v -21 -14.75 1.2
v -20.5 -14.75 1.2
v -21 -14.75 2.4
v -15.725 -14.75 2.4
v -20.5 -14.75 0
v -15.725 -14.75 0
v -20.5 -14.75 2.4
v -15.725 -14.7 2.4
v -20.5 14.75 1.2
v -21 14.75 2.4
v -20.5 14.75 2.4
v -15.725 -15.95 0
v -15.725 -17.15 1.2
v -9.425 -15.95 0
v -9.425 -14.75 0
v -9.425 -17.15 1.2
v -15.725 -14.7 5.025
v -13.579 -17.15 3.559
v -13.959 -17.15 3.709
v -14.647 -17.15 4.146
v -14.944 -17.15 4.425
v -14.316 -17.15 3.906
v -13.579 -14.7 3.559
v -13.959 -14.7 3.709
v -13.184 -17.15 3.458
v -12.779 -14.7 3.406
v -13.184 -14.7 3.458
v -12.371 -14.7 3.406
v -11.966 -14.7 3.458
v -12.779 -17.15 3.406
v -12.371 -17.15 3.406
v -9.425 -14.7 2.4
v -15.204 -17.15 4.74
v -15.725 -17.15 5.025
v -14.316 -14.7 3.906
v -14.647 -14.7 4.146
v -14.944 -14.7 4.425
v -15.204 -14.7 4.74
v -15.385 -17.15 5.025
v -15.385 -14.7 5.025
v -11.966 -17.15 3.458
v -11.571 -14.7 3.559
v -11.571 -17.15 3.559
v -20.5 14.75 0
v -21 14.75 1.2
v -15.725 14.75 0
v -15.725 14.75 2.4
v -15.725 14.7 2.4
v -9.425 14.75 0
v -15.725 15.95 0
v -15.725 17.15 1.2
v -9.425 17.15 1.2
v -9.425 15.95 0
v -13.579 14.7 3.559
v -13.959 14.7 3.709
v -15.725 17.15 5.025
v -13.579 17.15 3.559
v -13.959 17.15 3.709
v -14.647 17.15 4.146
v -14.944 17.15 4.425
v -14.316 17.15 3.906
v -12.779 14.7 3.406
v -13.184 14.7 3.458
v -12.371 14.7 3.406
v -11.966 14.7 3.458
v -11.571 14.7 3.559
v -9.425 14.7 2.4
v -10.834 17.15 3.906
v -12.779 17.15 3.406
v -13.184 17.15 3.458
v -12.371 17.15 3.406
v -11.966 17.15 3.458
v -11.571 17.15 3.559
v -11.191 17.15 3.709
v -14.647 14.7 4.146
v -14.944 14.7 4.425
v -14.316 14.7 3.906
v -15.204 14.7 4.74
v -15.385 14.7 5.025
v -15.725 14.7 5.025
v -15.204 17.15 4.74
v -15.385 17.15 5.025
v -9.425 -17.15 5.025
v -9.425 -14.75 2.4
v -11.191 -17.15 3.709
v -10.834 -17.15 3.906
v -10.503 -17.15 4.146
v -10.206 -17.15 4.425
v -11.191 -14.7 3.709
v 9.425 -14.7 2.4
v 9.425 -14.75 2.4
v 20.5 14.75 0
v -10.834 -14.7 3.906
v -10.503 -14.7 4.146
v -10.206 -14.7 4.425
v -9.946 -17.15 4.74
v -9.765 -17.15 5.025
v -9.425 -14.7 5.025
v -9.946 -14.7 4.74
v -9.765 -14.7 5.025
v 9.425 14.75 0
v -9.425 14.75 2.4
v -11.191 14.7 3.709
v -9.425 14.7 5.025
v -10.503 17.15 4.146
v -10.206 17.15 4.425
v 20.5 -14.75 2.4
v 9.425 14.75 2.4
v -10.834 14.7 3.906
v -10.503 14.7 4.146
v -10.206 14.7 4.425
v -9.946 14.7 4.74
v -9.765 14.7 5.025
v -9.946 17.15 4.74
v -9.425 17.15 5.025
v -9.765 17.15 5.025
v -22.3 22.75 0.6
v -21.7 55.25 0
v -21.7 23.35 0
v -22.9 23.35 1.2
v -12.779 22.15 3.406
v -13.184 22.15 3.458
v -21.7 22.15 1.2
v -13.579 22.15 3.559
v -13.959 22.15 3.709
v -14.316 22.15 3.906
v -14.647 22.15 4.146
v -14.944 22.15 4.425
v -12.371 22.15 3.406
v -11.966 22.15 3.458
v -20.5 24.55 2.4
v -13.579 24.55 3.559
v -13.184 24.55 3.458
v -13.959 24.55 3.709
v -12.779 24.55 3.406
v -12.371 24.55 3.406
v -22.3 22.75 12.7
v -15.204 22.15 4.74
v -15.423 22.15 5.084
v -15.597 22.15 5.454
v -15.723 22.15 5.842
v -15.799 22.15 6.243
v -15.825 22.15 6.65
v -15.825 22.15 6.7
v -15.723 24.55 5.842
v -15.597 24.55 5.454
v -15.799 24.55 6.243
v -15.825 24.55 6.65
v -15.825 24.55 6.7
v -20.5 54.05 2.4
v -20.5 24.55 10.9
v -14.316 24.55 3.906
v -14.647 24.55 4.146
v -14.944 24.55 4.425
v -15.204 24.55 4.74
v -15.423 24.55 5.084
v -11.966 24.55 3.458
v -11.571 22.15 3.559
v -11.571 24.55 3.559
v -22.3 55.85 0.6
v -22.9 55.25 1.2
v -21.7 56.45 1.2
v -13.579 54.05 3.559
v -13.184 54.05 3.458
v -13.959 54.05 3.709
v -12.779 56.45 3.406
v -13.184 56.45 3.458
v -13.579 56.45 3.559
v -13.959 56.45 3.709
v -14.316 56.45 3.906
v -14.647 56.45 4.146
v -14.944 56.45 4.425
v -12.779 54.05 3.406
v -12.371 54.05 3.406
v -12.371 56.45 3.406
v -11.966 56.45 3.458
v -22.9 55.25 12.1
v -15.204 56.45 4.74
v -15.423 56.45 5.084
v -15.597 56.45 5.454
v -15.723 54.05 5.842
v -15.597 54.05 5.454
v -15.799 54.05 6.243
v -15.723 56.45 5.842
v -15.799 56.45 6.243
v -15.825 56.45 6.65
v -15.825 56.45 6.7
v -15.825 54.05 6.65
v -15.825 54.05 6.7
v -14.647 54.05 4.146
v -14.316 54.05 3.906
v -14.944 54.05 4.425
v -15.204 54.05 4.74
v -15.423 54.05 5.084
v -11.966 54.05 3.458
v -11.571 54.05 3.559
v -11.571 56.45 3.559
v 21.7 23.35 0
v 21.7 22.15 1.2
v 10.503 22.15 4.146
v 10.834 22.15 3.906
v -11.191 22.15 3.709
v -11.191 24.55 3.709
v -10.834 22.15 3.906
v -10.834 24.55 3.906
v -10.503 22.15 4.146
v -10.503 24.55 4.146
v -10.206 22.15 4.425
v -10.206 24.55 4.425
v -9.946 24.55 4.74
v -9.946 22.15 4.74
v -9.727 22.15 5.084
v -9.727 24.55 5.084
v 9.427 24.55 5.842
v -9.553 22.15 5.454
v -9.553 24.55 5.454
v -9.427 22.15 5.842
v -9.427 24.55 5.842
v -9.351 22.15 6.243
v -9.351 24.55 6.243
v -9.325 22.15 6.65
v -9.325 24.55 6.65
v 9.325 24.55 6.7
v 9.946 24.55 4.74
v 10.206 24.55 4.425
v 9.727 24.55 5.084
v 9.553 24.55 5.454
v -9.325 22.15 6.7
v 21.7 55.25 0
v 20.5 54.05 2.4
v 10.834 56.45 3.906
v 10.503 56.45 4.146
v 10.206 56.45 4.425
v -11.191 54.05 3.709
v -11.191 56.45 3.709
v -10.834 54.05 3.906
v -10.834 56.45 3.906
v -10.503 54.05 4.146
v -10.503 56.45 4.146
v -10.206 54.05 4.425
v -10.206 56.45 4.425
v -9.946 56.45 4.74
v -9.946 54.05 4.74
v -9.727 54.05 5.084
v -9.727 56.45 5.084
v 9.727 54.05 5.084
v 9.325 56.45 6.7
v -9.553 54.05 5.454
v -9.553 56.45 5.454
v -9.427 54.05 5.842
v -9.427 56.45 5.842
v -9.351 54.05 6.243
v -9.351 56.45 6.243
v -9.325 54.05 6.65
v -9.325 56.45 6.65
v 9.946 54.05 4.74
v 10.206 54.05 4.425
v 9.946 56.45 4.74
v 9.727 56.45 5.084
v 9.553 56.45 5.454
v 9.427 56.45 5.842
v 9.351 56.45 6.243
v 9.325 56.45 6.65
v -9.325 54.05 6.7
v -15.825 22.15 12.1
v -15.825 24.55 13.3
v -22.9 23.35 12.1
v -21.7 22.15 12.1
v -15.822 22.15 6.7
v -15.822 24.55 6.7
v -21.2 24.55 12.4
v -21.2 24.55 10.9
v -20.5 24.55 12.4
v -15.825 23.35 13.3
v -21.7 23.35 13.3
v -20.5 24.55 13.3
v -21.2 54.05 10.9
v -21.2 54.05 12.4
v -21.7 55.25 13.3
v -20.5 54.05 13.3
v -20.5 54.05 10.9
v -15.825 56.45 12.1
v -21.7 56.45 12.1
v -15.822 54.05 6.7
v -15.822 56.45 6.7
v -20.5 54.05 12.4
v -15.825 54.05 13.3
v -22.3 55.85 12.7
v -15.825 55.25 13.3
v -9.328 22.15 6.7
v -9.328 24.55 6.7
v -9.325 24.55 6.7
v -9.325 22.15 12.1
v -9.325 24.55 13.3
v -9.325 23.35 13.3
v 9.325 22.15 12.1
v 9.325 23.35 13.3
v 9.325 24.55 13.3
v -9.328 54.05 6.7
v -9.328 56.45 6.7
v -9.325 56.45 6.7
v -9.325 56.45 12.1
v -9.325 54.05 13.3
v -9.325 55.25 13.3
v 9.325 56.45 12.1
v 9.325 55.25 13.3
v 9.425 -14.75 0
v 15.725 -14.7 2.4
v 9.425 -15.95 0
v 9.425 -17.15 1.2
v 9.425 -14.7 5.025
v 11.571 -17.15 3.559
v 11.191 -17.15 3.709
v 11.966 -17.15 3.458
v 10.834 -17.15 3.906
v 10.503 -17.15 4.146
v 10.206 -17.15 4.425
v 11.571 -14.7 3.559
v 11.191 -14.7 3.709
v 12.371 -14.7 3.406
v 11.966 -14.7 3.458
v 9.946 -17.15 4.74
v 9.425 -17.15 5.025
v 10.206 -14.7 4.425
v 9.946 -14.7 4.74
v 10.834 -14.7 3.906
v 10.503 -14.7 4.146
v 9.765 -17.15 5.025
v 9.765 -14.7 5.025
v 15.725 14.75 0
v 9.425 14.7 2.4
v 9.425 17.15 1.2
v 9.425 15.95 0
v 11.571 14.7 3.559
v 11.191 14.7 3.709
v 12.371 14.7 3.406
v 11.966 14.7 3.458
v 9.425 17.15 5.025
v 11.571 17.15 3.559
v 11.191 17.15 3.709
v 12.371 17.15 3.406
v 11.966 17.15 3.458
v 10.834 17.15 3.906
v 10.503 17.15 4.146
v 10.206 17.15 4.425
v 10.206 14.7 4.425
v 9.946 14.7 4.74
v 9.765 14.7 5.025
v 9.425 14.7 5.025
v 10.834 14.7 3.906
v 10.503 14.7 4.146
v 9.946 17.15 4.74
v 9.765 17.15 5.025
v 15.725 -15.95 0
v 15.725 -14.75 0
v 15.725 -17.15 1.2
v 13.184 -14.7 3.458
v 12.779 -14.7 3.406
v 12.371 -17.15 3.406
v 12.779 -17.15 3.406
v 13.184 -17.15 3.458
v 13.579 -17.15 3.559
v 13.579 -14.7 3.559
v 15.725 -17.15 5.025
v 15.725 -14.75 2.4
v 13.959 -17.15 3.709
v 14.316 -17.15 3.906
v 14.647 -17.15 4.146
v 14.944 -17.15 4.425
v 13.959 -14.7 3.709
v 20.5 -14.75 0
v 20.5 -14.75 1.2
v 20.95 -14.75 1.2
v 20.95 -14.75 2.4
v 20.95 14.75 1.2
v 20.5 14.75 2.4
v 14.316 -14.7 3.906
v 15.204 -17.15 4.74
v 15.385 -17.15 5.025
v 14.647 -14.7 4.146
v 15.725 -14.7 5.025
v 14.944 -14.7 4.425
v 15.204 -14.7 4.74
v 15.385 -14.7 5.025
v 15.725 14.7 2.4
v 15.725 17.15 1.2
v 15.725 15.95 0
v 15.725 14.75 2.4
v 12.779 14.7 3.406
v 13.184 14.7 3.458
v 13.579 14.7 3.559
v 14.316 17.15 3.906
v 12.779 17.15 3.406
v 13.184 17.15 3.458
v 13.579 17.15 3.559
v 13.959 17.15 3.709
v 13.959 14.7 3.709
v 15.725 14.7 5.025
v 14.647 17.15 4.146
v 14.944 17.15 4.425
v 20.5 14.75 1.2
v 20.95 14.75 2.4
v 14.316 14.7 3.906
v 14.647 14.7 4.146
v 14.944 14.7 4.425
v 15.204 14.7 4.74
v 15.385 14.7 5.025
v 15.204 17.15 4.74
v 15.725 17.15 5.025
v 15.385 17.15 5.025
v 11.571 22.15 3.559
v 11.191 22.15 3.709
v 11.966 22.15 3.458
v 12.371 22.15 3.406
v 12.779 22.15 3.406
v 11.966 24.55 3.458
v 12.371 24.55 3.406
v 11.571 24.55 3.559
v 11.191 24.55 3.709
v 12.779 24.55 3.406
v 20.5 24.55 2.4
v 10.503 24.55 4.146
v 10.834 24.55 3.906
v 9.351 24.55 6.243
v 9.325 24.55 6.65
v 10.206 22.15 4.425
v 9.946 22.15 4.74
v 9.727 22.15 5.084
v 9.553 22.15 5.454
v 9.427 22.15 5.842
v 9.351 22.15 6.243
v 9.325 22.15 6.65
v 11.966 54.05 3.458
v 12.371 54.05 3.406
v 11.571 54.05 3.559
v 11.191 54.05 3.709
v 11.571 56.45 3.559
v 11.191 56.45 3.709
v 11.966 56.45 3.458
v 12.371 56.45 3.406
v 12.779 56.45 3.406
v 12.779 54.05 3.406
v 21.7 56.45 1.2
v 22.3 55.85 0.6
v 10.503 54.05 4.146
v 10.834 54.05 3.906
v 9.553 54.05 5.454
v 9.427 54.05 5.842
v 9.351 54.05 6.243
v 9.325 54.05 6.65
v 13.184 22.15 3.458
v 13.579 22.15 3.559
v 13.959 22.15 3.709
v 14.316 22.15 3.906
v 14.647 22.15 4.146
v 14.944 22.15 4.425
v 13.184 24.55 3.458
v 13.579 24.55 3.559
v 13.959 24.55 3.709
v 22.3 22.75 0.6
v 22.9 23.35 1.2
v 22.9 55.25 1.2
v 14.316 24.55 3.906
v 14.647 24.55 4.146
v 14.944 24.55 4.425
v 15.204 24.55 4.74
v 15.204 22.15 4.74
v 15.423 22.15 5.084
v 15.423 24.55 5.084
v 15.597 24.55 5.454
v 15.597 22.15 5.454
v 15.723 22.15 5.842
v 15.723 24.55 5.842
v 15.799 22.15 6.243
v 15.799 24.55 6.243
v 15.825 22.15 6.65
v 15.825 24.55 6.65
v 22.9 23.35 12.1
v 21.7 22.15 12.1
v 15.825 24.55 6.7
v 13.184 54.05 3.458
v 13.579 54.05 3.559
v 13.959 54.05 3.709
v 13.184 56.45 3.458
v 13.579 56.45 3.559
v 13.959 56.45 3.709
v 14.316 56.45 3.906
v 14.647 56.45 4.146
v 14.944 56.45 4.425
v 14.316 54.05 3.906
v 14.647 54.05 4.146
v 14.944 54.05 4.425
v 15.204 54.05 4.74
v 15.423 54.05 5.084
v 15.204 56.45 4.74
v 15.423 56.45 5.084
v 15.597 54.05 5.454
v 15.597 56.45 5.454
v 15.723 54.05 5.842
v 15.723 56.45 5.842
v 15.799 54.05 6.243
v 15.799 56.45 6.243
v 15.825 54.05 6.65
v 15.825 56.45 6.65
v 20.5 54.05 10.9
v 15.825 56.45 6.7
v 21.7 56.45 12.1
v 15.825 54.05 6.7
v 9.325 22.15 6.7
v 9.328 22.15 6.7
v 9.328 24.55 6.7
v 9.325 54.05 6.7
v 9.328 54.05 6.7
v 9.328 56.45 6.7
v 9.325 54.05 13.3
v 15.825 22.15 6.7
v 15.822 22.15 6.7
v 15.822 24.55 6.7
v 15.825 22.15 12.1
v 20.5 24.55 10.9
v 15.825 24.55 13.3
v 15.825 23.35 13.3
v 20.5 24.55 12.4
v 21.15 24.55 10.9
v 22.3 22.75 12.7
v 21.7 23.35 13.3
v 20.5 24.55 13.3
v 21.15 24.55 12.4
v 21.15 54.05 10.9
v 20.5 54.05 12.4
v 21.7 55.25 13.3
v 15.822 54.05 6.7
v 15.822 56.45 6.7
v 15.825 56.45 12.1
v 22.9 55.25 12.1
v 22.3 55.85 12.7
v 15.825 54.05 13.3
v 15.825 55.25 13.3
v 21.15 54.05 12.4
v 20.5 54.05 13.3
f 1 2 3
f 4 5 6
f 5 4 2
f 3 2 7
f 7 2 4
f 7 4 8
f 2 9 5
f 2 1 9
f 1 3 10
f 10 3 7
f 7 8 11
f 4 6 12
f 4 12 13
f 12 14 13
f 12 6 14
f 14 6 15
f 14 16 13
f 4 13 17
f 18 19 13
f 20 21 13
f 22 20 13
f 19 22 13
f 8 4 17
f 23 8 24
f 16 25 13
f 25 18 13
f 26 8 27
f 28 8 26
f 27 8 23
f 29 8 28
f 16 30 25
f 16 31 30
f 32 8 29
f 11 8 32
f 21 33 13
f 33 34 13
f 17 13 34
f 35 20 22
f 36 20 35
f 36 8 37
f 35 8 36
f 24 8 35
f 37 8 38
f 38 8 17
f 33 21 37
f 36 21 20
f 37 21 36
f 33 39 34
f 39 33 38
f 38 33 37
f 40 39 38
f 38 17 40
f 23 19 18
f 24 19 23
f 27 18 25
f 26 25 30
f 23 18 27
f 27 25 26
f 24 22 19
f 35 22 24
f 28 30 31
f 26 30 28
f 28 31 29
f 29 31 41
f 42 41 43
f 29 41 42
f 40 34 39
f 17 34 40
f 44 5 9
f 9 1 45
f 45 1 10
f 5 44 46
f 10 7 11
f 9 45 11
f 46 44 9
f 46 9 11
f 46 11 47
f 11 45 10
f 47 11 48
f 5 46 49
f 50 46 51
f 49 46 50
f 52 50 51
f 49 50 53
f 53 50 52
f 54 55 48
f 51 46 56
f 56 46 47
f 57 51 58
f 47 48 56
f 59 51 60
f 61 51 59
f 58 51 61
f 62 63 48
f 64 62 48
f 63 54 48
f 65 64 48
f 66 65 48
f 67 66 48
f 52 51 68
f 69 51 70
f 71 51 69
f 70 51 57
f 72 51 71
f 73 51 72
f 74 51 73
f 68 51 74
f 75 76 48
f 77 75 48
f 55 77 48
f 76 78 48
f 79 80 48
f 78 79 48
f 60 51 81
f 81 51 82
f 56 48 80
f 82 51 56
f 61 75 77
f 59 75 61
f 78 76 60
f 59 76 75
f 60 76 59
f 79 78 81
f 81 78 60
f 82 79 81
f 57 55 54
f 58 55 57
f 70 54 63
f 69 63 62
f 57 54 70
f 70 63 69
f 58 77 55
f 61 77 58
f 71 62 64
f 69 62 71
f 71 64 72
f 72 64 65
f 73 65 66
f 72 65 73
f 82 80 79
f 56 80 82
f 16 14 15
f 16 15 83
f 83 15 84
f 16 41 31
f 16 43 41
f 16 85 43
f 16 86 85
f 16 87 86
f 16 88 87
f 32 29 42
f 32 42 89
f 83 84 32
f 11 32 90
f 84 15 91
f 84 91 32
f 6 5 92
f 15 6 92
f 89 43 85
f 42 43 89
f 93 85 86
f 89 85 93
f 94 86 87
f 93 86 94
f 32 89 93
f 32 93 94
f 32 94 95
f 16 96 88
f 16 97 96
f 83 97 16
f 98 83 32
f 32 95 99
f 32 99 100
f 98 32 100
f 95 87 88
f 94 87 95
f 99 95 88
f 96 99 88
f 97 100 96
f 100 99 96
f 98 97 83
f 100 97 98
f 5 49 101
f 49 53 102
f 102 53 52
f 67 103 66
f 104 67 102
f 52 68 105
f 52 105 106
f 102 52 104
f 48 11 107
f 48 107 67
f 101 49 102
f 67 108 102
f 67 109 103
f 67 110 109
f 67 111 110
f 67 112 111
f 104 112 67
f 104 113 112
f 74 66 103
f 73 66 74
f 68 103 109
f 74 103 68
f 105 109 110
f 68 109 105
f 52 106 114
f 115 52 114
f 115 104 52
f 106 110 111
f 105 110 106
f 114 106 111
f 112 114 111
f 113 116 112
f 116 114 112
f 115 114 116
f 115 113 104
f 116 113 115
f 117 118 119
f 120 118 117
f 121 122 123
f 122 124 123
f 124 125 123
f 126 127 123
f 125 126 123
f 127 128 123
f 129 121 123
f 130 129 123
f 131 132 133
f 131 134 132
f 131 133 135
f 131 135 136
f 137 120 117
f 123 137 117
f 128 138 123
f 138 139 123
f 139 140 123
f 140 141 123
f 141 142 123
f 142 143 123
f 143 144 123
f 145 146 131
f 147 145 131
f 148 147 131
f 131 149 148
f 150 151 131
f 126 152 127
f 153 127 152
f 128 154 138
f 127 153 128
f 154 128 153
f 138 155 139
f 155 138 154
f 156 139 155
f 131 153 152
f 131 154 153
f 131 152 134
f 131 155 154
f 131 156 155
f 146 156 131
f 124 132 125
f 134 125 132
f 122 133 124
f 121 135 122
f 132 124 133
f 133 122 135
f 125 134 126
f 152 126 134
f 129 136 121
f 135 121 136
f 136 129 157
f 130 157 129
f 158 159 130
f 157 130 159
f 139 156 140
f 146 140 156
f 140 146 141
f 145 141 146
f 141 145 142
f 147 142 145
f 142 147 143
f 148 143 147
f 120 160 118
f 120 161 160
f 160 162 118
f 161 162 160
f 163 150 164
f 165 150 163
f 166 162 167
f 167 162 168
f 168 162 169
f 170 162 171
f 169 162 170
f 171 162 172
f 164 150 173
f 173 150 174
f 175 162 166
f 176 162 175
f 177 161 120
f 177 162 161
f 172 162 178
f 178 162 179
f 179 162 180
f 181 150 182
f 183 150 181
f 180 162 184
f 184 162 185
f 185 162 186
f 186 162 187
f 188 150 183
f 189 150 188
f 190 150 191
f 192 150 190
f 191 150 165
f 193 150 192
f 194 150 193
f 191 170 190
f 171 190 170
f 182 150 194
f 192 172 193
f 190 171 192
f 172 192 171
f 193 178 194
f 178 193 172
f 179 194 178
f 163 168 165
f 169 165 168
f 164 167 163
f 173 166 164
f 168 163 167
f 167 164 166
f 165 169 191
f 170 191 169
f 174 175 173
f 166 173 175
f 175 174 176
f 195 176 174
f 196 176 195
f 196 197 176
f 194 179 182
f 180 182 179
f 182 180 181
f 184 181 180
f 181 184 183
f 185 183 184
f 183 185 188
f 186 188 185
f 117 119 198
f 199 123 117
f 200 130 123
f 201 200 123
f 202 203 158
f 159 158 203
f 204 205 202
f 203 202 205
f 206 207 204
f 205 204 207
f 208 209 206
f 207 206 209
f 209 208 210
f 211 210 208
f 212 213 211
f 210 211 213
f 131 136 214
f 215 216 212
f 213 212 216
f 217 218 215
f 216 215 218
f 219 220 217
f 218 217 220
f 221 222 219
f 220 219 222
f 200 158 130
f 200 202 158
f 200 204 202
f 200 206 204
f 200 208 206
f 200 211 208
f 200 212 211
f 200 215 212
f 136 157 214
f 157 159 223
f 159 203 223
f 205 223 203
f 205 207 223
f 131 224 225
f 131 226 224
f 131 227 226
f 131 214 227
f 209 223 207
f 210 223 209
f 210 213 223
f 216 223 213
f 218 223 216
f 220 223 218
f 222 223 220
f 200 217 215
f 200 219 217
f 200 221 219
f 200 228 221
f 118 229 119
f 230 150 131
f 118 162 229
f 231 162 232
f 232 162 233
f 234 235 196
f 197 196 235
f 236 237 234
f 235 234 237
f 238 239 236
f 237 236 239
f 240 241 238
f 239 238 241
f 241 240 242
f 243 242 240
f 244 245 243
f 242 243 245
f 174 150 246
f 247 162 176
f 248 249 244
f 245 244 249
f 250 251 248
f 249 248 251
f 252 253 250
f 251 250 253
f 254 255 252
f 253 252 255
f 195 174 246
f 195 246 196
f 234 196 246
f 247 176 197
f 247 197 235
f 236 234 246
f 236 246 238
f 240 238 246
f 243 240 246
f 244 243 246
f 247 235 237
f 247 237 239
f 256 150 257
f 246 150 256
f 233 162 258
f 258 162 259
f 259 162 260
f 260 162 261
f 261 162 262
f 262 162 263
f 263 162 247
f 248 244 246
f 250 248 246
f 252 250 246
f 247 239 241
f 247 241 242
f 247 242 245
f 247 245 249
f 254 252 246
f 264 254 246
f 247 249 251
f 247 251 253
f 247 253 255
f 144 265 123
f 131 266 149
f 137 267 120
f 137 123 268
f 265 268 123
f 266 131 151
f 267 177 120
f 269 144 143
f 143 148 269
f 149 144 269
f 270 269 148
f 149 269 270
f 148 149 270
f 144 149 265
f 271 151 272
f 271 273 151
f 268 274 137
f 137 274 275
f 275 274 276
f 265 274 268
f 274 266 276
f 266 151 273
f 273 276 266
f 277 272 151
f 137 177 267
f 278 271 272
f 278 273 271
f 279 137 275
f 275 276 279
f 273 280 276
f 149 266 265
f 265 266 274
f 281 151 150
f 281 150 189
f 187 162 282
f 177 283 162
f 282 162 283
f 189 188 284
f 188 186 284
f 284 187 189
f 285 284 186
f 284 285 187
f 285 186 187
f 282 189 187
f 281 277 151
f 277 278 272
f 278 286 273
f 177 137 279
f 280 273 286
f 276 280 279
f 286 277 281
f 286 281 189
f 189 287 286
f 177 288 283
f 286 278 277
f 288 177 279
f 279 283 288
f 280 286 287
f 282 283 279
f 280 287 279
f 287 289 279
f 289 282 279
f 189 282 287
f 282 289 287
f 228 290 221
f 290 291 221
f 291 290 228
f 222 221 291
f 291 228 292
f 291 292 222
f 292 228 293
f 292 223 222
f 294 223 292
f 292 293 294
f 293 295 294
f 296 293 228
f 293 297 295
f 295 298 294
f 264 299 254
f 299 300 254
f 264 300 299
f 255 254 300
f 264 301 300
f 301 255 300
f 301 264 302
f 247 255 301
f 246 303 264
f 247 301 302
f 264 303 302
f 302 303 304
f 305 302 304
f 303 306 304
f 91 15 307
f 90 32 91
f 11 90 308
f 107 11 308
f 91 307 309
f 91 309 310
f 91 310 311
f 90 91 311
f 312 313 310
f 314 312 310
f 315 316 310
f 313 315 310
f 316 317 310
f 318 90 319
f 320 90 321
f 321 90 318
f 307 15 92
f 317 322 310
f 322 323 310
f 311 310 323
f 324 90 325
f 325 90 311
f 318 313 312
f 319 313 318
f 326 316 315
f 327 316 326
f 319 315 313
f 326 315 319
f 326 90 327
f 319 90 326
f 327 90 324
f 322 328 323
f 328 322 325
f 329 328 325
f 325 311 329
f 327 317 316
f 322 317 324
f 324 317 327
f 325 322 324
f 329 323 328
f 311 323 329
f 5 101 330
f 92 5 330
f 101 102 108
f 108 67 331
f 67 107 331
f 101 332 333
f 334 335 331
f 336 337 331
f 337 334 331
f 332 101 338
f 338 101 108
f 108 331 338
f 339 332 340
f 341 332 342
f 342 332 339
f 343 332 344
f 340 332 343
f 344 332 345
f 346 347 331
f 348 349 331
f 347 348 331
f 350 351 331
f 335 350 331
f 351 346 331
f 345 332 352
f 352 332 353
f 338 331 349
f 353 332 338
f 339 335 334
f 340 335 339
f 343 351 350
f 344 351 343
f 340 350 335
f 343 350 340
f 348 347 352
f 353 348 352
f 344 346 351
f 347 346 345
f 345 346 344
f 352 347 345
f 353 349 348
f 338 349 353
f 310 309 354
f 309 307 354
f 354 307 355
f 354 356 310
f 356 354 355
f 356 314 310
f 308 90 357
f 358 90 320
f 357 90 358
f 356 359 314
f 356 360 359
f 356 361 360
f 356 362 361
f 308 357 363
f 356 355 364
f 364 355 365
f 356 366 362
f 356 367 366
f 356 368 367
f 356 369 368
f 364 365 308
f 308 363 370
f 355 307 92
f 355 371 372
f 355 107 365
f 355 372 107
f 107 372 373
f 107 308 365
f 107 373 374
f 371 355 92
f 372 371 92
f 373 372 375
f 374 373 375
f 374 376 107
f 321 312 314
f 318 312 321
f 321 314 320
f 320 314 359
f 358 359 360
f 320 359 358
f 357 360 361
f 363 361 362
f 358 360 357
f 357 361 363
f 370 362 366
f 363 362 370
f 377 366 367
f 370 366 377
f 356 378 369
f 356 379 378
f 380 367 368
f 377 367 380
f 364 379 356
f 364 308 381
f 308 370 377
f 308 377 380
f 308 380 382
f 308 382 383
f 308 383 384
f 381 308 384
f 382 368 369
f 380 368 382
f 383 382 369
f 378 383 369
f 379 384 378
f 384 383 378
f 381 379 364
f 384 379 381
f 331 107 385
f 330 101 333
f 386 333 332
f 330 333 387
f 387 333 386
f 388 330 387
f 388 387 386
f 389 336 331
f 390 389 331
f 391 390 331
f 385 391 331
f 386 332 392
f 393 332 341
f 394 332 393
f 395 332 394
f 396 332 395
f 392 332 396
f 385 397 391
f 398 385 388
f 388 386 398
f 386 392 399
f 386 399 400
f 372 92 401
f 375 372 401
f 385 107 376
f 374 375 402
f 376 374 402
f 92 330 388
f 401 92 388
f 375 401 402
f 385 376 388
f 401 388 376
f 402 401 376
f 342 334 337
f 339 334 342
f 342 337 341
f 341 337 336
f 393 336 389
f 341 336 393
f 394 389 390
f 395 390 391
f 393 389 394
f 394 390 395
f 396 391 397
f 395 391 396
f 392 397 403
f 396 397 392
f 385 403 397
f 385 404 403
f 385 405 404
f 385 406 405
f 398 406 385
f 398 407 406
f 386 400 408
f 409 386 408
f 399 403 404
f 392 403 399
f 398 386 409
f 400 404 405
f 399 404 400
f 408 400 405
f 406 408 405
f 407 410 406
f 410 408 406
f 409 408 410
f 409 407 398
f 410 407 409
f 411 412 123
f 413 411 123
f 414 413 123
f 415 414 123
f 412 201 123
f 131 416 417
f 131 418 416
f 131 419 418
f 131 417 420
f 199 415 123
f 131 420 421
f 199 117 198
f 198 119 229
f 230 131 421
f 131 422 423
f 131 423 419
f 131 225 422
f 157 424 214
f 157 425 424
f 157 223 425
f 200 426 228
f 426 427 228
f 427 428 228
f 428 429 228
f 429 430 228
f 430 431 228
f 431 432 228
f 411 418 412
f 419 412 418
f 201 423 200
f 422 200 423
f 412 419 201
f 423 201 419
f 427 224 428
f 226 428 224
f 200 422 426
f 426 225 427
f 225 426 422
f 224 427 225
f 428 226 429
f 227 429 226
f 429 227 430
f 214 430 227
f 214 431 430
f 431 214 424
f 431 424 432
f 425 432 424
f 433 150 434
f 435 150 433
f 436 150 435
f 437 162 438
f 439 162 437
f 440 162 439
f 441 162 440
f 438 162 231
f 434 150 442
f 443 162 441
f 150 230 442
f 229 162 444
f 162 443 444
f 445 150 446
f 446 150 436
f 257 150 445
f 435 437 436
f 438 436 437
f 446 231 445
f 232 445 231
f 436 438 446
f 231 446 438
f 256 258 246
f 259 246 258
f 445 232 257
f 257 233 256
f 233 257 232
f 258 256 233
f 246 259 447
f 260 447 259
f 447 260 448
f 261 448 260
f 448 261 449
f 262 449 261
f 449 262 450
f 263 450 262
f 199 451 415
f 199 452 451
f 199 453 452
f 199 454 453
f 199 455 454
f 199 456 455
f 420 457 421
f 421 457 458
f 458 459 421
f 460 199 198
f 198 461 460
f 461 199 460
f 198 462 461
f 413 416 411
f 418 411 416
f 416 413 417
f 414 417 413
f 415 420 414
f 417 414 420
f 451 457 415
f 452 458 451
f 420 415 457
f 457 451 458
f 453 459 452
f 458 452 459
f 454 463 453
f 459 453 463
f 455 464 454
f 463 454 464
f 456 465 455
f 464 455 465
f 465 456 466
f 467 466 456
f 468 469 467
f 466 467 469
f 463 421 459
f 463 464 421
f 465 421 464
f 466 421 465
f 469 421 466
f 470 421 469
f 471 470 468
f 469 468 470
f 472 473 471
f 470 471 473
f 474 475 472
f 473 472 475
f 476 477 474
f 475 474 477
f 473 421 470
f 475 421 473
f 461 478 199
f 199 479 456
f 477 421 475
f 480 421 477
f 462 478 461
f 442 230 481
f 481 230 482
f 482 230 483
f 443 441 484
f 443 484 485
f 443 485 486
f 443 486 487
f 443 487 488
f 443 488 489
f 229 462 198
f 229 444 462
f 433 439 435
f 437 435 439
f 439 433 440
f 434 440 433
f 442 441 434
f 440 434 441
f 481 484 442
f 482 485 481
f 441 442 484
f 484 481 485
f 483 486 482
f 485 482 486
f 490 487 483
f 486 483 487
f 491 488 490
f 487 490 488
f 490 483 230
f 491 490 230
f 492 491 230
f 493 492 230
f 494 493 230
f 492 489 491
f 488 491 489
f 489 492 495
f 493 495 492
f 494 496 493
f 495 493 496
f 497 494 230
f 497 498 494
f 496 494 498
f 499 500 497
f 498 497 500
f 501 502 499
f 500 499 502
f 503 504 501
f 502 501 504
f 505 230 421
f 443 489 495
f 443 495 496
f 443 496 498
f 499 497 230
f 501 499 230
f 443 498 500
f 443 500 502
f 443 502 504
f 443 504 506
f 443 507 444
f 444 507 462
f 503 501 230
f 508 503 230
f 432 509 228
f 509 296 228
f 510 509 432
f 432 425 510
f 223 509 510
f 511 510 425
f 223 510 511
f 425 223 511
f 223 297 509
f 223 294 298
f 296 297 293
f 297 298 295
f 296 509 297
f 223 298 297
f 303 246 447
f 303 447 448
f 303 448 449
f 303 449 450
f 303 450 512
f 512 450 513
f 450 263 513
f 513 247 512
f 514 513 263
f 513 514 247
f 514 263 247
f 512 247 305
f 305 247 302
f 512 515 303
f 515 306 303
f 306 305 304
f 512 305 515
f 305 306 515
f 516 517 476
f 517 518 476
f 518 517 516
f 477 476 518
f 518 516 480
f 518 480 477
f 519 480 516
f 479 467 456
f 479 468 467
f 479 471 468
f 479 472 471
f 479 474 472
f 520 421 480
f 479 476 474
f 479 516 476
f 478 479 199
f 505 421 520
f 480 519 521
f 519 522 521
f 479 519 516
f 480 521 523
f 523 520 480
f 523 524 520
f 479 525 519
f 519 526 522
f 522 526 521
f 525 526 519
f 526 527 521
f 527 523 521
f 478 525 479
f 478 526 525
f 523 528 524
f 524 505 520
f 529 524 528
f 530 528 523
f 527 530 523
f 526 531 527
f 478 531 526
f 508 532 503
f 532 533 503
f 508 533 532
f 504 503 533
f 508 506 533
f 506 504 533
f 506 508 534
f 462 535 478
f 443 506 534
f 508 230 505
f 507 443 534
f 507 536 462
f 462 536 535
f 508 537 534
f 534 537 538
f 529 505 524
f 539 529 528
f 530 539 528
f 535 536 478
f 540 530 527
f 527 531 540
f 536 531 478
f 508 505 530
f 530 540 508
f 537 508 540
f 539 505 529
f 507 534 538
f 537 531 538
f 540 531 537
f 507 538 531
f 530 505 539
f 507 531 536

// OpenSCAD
/* LISN-mate case

   The LISN-mate is distributed under the CC BY-SA 4.0 license
   (Attribution-ShareAlike 4.0 International).

   You are free to:

      Share - copy and redistribute the material in any medium or format

      Adapt - remix, transform, and build upon the material

      The licensor cannot revoke these freedoms as long as you follow the
      license terms.

   Under the following terms:

      Attribution - You must give appropriate credit, provide a link to the
      license, and indicate if changes were made. You may do so in any
      reasonable manner, but not in any way that suggests the licensor endorses
      you or your use.

      NonCommercial - You may not use the material for commercial purposes.

      ShareAlike - If you remix, transform, or build upon the material, you must
      distribute your contributions under the same license as the original.

      No additional restrictions - You may not apply legal terms or
      technological measures that legally restrict others from doing anything
      the license permits.

   Acknowledgement:
      This project use the "Chamfered primitives for OpenSCAD v1.2" by
      "TimeWaster". That project is published under a Creative Commons
      Attribution-NonCommercial-ShareAlike 3.0 licence.
*/

Length = 41;        /* interior size (of the PCB, including some tolerance) */
Width = 29.5;
Height = 8.5;
SMA_Diameter = 6.5; /* SMA connector diameter */
SMA_Spacing = 25.15;
ScrewDiameter = 3;
WallSize = 2.4;
Snap_Ridge = 0.5;   /* depth of the ridge for snapping the bottom shell into the top shell */
Chamfer = 1.2;      /* chamfer size on all outer edges */

epsilon = 0.05;
$fn = 50;

include <Chamfer.scad>

module top_shell() {
  difference() {
    /* basic shell (box) */
    length_ext = Length + 2*WallSize;
    width_ext = Width + 2*WallSize;
    height_ext = Height + 2*WallSize;
    translate([-length_ext/2, -width_ext/2, 0])
      chamferCube([length_ext, width_ext, height_ext], undef, Chamfer);
    translate([-Length/2, -Width/2, -epsilon])
      cube([Length, Width, Height + WallSize + epsilon]);

    /* connector holes */
    tube_length = Width + 2*(WallSize + epsilon);
    translate([0, -tube_length/2, height_ext/2]) {
      union() {
        rotate([-90, 0, 0])
          translate([-SMA_Spacing/2, 0, 0])
            cylinder(d = SMA_Diameter, h = tube_length);
        translate([-SMA_Spacing/2 - SMA_Diameter/2, 0, -height_ext/2 - epsilon])
          cube([SMA_Diameter, tube_length, height_ext/2]);

        rotate([-90, 0, 0])
          translate([SMA_Spacing/2, 0, 0])
            cylinder(d = SMA_Diameter, h = tube_length);
        translate([SMA_Spacing/2 - SMA_Diameter/2, 0, -height_ext/2 - epsilon])
          cube([SMA_Diameter, tube_length, height_ext/2]);
      }
    }

    /* snap ridges (to snap the bottom in place) */
    ridge_height = WallSize/2 + 0.3; /* 0.3 = tolerance */
    ridge_width = Snap_Ridge + 0.2;
    translate([Length/2 - epsilon, -Width/2, WallSize - ridge_height])
      cube([ridge_width, Width, ridge_height]);
    translate([-Length/2 - ridge_width, -Width/2, WallSize - ridge_height])
      cube([ridge_width + epsilon, Width, ridge_height]);
  }
}

module bottom_shell() {
  height_ext = Height + 2*WallSize;
  difference() {
    union() {
      /* bottom plate */
      translate([-Length/2, -Width/2, 0])
        cube([Length, Width, WallSize]);

      /* snap ridges */
      translate([Length/2 - epsilon, -Width/2, WallSize/2])
        cube([Snap_Ridge, Width, WallSize/2]);
      translate([-Length/2 - Snap_Ridge, -Width/2, WallSize/2])
        cube([Snap_Ridge + epsilon, Width, WallSize/2]);

      /* connector supports (rounded part in subtracted below) */
      stud_size = SMA_Diameter - 0.2;
      stud_height = height_ext/2 - SMA_Diameter/4;
      translate([-SMA_Spacing/2 - stud_size/2, -(Width/2 + WallSize), 0])
        chamferCube([stud_size, WallSize + epsilon, stud_height], [[1, 0, 0, 0], [0, 0, 0, 0], [0, 0, 0, 0]], Chamfer);
      translate([SMA_Spacing/2 - stud_size/2, -(Width/2 + WallSize), 0])
        chamferCube([stud_size, WallSize + epsilon, stud_height], [[1, 0, 0, 0], [0, 0, 0, 0], [0, 0, 0, 0]], Chamfer);
      translate([-SMA_Spacing/2 - stud_size/2, Width/2 - epsilon, 0])
        chamferCube([stud_size, WallSize + epsilon, stud_height], [[0, 1, 0, 0], [0, 0, 0, 0], [0, 0, 0, 0]], Chamfer);
      translate([SMA_Spacing/2 - stud_size/2, Width/2 - epsilon, 0])
        chamferCube([stud_size, WallSize + epsilon, stud_height], [[0, 1, 0, 0], [0, 0, 0, 0], [0, 0, 0, 0]], Chamfer);
    }

    tube_length = Width + 2*(WallSize + epsilon);
    height_ext = Height + 2*WallSize;
    translate([0, -tube_length/2, height_ext/2])
      rotate([-90, 0, 0])
        translate([-SMA_Spacing/2, 0, 0])
          cylinder(d = SMA_Diameter, h = tube_length);
    translate([0, -tube_length/2, height_ext/2])
      rotate([-90, 0, 0])
        translate([SMA_Spacing/2, 0, 0])
          cylinder(d = SMA_Diameter, h = tube_length);
  }
}

/* assembled */
//top_shell();
//bottom_shell();

/* separate, for printing */
translate([0, Width + 2*WallSize + 5, Height + 2*WallSize])
  rotate([180, 0, 0])
    top_shell();
bottom_shell();
